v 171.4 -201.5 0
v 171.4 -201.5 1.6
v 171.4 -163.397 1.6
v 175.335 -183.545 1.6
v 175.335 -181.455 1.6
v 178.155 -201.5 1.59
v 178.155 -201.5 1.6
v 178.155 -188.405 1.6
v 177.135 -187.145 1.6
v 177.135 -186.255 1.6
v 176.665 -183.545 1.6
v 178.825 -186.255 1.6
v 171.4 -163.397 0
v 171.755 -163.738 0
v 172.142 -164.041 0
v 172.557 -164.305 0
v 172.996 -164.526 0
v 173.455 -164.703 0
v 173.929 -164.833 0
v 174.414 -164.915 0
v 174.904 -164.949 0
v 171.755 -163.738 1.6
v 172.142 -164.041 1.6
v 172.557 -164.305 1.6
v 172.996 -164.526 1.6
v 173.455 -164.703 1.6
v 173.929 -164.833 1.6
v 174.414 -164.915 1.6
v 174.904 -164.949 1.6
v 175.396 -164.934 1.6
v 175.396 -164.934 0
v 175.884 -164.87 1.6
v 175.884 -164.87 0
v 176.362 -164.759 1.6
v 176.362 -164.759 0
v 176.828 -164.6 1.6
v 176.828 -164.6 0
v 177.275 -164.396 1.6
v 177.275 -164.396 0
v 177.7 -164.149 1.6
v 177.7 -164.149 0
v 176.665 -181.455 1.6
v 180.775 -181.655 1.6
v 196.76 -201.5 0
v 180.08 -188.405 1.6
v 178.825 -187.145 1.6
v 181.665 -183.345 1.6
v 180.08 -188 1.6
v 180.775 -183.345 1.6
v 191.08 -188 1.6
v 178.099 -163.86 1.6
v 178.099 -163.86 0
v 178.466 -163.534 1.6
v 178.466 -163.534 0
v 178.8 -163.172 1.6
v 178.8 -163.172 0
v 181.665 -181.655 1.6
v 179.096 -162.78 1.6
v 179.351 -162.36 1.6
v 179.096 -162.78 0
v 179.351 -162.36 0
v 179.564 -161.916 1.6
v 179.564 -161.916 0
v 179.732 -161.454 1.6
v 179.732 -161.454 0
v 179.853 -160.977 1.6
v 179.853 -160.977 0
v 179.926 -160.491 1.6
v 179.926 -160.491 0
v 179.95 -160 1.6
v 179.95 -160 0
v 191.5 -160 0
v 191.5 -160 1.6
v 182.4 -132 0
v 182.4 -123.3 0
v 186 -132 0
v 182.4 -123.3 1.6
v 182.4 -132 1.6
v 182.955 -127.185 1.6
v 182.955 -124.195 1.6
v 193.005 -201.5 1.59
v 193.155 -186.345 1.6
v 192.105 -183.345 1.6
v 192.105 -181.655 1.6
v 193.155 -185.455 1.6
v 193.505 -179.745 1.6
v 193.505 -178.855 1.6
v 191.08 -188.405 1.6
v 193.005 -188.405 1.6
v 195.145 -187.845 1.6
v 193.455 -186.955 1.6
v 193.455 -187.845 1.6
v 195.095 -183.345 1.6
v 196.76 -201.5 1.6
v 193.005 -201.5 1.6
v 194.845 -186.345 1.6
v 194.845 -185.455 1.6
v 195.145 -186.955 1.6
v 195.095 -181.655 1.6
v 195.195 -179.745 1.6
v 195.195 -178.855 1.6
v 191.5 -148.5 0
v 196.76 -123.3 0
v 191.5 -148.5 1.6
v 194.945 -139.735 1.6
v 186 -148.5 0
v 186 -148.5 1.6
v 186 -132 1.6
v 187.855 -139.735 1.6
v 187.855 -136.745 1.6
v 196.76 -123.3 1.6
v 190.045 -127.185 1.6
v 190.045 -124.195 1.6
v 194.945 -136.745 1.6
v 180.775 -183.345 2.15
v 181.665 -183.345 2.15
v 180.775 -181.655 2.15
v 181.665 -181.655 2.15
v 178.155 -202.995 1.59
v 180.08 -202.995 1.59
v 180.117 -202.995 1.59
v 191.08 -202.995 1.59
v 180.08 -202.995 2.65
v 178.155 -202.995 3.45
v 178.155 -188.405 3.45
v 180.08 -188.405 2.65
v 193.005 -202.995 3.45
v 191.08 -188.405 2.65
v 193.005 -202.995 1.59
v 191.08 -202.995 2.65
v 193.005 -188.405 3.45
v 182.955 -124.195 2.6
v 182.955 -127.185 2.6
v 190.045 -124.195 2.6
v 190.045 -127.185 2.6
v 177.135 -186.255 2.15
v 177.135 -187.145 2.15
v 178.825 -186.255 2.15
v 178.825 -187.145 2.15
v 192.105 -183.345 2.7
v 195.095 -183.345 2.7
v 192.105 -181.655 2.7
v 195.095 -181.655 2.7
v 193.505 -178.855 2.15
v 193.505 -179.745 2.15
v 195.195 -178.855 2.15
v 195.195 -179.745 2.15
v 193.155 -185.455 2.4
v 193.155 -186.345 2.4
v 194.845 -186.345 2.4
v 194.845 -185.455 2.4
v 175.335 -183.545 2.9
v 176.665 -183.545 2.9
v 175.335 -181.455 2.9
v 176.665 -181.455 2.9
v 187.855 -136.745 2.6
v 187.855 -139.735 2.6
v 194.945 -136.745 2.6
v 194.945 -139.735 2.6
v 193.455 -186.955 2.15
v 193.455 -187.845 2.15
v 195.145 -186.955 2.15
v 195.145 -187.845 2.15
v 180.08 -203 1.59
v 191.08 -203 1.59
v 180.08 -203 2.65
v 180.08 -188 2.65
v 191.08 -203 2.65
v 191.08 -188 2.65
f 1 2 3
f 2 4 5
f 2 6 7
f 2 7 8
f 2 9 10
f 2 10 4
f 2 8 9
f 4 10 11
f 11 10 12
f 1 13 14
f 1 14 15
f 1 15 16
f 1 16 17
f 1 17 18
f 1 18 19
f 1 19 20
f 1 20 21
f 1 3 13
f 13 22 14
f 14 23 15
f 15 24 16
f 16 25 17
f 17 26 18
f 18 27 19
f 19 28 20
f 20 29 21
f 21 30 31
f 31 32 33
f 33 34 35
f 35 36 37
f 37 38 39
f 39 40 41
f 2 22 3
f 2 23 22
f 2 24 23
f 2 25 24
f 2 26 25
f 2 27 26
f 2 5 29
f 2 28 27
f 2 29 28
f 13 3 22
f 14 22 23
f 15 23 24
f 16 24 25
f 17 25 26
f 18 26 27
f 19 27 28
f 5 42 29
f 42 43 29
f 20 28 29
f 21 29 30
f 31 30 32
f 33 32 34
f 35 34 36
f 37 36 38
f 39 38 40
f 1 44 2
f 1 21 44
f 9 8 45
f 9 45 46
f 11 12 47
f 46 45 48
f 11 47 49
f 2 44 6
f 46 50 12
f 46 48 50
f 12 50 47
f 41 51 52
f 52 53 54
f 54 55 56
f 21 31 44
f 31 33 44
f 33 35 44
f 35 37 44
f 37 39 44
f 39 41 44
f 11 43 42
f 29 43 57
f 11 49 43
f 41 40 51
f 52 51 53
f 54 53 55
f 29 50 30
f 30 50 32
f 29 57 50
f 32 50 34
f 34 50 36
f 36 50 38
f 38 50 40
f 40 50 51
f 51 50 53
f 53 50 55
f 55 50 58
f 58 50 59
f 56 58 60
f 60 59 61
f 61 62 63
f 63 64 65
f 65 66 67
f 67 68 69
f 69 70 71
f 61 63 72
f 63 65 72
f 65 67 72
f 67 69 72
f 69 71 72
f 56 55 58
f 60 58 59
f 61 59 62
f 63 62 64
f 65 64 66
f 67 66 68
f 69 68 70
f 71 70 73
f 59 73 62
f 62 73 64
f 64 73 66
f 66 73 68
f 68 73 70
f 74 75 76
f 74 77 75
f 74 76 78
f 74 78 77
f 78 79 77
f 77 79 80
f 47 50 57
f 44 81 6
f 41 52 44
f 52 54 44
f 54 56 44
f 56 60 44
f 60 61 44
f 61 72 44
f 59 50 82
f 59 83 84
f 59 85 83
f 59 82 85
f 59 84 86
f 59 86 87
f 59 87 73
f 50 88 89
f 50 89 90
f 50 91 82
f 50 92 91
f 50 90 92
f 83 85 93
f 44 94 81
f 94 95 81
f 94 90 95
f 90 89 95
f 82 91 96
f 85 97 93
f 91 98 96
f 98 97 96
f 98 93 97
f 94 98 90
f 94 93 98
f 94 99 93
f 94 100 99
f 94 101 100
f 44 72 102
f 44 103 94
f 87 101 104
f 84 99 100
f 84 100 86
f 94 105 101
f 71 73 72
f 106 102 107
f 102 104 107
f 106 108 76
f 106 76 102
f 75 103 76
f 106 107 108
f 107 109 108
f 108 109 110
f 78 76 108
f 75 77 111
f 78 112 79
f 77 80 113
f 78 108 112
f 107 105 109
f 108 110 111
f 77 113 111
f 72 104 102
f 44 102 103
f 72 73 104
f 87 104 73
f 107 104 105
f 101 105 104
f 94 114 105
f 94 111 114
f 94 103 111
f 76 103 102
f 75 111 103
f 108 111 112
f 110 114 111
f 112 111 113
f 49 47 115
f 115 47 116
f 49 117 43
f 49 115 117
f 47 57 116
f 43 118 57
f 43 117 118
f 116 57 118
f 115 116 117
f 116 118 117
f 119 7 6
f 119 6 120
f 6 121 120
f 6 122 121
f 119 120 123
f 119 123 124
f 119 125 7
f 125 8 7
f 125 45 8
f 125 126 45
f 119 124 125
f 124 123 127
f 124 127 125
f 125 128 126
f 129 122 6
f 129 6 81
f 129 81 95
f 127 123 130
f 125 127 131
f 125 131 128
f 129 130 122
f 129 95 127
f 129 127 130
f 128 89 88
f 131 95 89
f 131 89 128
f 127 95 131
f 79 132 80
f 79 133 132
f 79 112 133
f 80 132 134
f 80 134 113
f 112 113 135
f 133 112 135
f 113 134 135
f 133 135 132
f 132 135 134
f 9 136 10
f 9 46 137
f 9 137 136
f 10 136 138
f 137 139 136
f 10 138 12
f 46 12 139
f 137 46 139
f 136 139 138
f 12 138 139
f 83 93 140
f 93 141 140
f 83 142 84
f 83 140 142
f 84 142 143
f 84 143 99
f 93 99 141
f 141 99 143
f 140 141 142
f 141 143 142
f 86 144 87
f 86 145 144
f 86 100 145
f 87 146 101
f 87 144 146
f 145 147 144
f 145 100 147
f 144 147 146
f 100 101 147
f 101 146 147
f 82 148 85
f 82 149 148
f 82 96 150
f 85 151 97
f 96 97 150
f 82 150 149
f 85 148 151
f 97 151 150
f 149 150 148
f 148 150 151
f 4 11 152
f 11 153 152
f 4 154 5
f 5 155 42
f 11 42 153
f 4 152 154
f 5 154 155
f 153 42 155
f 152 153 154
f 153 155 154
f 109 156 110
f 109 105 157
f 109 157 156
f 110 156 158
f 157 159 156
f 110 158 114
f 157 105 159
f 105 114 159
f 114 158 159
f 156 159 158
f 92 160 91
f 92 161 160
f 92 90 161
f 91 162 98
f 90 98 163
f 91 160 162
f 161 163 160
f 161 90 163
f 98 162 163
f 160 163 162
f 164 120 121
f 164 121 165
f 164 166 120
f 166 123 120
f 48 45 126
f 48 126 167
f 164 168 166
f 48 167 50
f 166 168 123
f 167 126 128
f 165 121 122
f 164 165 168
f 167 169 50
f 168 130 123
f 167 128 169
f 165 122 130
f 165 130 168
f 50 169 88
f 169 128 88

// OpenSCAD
// generated by make_mockup.py: the SD board's outline and its parts as blocks
union() {
  linear_extrude(1.6) polygon([[196.76, -201.5], [171.4, -201.5], [171.4, -163.397], [171.755, -163.738], [172.142, -164.041], [172.557, -164.305], [172.996, -164.526], [173.455, -164.703], [173.929, -164.833], [174.414, -164.915], [174.904, -164.949], [175.396, -164.934], [175.884, -164.87], [176.362, -164.759], [176.828, -164.6], [177.275, -164.396], [177.7, -164.149], [178.099, -163.86], [178.466, -163.534], [178.8, -163.172], [179.096, -162.78], [179.351, -162.36], [179.564, -161.916], [179.732, -161.454], [179.853, -160.977], [179.926, -160.491], [179.95, -160.0], [191.5, -160.0], [191.5, -148.5], [186.0, -148.5], [186.0, -132.0], [182.4, -132.0], [182.4, -123.3], [196.76, -123.3]]);
  translate([180.775, -183.345, 1.59]) cube([0.890, 1.690, 0.56]);  // R1
  translate([178.155, -202.995, 1.59]) cube([14.850, 14.590, 1.86]);  // J1
  translate([182.955, -127.185, 1.59]) cube([7.090, 2.990, 1.01]);  // J3
  translate([177.135, -187.145, 1.59]) cube([1.690, 0.890, 0.56]);  // R3
  translate([192.105, -183.345, 1.59]) cube([2.990, 1.690, 1.11]);  // U1
  translate([193.505, -179.745, 1.59]) cube([1.690, 0.890, 0.56]);  // R4
  translate([193.155, -186.345, 1.59]) cube([1.690, 0.890, 0.81]);  // C2
  translate([175.335, -183.545, 1.59]) cube([1.330, 2.090, 1.31]);  // C1
  translate([187.855, -139.735, 1.59]) cube([7.090, 2.990, 1.01]);  // J2
  translate([193.455, -187.845, 1.59]) cube([1.690, 0.890, 0.56]);  // R2
  translate([180.080, -203.000, 1.59]) cube([11.000, 15.000, 1.06]);  // card
}
